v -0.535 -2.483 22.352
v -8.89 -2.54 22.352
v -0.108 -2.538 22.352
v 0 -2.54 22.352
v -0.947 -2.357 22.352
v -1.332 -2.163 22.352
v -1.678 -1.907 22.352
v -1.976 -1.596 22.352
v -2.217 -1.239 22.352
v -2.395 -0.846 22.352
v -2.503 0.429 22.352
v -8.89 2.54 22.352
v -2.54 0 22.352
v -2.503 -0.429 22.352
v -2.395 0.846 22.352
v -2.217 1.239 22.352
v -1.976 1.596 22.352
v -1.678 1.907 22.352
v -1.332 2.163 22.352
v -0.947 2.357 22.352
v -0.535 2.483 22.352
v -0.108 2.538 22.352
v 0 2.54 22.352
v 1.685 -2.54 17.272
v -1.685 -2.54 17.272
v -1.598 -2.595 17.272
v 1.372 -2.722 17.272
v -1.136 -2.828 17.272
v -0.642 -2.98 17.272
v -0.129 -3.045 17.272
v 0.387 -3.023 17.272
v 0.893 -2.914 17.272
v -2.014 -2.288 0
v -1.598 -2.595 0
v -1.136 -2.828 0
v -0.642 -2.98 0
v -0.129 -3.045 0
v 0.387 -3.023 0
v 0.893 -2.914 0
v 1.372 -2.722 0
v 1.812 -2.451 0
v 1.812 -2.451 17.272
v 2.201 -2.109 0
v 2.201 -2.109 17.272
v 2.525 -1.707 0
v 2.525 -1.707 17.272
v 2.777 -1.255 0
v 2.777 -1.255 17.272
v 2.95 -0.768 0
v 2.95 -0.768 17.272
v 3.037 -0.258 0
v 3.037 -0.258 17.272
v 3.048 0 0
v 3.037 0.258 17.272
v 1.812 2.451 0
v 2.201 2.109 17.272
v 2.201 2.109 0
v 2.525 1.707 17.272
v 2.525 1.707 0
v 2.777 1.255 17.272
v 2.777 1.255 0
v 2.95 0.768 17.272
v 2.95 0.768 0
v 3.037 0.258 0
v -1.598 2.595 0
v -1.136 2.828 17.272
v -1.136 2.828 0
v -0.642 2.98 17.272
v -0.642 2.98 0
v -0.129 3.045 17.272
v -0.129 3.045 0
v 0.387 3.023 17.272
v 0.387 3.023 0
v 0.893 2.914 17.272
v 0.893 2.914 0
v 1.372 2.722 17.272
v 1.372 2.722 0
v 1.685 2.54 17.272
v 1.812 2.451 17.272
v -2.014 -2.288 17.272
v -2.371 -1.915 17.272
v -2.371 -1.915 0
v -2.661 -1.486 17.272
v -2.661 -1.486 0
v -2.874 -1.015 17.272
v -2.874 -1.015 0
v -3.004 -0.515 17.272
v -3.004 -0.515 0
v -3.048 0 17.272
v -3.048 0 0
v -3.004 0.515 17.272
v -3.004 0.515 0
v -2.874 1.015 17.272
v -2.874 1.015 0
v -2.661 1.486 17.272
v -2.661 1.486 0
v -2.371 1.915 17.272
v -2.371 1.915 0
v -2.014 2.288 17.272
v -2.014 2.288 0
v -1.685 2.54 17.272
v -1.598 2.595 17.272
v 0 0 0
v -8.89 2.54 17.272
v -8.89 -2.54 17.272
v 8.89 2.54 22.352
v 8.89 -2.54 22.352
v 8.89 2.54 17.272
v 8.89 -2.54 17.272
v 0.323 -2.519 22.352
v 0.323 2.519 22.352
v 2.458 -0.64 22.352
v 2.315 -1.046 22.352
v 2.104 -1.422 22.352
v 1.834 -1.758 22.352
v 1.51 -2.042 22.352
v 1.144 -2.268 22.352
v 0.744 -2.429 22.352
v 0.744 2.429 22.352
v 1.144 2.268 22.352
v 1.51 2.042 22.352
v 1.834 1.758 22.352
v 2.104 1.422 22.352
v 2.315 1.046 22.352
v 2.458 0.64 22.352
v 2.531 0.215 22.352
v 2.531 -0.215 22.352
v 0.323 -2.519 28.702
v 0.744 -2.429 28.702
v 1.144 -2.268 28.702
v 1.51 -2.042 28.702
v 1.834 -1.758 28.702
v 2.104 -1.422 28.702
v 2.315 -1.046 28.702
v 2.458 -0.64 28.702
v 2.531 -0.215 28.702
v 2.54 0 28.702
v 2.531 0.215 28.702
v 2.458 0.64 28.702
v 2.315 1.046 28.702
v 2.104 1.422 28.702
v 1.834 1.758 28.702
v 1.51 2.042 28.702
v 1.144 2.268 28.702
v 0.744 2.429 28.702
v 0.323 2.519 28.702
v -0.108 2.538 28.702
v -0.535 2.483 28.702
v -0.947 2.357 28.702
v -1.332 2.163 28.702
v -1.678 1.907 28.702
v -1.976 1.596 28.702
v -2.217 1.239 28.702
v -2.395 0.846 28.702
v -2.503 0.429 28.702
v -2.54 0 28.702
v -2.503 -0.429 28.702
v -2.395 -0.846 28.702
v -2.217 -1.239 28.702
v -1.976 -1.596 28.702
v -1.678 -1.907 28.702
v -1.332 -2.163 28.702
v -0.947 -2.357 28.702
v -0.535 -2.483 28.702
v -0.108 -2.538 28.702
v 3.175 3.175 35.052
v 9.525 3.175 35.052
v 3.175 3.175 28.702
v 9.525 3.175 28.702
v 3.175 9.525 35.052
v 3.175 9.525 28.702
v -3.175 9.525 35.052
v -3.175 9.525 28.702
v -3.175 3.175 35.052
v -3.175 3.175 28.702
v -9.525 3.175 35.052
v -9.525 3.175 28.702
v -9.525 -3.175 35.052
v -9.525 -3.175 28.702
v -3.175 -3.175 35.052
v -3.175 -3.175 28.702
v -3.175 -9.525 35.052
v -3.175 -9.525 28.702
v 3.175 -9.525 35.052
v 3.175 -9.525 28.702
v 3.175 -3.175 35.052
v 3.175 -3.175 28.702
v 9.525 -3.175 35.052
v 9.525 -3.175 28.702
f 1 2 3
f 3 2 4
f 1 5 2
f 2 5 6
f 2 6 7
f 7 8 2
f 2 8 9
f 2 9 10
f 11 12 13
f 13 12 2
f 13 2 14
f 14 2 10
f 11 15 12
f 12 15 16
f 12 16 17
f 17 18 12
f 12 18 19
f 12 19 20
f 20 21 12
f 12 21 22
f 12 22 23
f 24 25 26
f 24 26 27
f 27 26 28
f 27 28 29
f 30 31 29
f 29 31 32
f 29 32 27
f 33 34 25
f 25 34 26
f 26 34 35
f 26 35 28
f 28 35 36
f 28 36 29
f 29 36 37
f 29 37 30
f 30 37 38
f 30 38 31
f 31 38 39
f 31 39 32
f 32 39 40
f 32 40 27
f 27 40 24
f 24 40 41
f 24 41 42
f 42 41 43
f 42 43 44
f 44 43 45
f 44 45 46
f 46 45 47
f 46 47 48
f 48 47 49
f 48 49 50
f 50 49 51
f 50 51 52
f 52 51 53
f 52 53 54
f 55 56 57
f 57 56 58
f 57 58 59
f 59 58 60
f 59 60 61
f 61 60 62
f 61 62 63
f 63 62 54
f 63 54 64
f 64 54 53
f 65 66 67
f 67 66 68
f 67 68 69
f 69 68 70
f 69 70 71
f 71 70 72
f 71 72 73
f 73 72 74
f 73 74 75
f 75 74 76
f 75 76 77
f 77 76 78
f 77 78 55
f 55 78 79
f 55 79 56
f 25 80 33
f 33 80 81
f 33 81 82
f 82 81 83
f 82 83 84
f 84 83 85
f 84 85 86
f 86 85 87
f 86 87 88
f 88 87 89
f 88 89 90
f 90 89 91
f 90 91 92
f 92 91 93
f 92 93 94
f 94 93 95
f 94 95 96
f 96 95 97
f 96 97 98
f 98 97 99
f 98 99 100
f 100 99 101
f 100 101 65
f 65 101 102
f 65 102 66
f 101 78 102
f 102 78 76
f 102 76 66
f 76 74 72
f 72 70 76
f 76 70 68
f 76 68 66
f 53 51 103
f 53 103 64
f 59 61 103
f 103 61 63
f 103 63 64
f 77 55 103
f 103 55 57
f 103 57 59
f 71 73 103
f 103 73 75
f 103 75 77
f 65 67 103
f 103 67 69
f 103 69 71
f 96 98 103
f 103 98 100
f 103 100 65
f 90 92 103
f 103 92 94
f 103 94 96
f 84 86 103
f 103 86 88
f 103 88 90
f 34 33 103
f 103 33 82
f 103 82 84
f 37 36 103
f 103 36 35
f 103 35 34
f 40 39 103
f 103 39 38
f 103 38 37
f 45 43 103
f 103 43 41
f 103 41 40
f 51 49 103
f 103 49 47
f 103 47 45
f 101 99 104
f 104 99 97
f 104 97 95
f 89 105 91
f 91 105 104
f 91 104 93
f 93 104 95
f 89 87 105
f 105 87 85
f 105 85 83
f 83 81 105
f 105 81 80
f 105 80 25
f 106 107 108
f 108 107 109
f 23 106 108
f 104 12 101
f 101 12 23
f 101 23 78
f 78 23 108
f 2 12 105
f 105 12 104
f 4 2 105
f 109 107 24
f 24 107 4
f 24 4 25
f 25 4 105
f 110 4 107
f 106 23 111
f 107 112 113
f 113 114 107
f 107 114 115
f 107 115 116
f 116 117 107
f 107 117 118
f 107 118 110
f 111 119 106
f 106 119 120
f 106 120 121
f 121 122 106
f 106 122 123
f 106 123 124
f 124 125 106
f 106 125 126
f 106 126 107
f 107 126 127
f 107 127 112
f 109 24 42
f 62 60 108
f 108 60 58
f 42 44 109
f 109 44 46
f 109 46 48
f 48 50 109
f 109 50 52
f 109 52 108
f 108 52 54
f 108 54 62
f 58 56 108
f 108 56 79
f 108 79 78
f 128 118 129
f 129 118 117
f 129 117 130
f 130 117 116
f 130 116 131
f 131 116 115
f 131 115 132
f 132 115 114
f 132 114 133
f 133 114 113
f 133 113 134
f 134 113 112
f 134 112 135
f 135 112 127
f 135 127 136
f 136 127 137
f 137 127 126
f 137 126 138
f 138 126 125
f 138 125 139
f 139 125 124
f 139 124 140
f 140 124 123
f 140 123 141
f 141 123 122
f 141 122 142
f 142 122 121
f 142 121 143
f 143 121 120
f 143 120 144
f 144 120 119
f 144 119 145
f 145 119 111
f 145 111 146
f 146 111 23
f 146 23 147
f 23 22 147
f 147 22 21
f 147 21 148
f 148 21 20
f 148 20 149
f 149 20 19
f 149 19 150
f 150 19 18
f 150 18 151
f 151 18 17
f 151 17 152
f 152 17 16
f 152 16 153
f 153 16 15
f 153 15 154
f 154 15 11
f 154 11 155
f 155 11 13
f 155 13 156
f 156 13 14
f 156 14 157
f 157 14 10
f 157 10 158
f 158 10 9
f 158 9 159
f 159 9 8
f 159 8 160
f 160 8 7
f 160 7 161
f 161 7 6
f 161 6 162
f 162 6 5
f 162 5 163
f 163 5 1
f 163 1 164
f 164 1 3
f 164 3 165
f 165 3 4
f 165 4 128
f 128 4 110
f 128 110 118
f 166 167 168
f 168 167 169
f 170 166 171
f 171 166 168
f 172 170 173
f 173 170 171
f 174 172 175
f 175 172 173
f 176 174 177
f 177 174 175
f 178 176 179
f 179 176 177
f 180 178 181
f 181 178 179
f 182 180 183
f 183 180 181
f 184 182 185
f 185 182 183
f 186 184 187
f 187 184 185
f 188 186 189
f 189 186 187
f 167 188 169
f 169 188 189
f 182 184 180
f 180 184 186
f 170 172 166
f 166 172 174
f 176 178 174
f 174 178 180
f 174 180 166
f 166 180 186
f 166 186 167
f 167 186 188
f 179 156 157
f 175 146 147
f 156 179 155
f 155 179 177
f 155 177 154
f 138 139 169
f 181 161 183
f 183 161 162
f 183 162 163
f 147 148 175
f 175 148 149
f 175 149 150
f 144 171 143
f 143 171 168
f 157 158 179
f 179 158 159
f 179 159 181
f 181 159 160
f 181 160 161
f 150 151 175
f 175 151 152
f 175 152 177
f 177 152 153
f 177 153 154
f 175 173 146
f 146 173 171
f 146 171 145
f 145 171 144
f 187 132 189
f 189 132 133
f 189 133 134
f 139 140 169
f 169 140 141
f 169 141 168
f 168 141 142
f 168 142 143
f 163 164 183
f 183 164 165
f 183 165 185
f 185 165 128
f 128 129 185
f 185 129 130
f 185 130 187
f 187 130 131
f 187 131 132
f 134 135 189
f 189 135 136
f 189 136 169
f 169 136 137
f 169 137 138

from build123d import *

# Parameters (mm, degrees)
SKETCH2_R           = 3.048
BOSS_EXTRUDE1_DEPTH = 17.272
SKETCH3_W           = 17.78
SKETCH3_H           = 5.08
BOSS_EXTRUDE2_DEPTH = 5.08
SKETCH4_R           = 2.54
BOSS_EXTRUDE3_DEPTH = 6.35
BOSS_EXTRUDE4_DEPTH = 6.35


with BuildPart() as part:
    # Sketch2 → Boss-Extrude1 (new body)
    with BuildSketch(Plane.XY):
        Circle(SKETCH2_R)
    extrude(amount=BOSS_EXTRUDE1_DEPTH)

    # Sketch3 → Boss-Extrude2 (add)
    with BuildSketch(Plane.XY.offset(17.272)):
        Rectangle(SKETCH3_W, SKETCH3_H)
    extrude(amount=BOSS_EXTRUDE2_DEPTH)

    # Sketch4 → Boss-Extrude3 (add)
    with BuildSketch(Plane.XY.offset(22.352)):
        with Locations(Location((0, 0, 0), (0, 0, 270))):
            Circle(SKETCH4_R)
    extrude(amount=BOSS_EXTRUDE3_DEPTH)

    # Sketch5 → Boss-Extrude4 (add)
    with BuildSketch(Plane.XY.offset(28.702)):
        Polygon((-3.175, 3.175), (-3.175, 9.525), (3.175, 9.525), (3.175, 3.175), (9.525, 3.175), (9.525, -3.175), (3.175, -3.175), (3.175, -9.525), (-3.175, -9.525), (-3.175, -3.175), (-9.525, -3.175), (-9.525, 3.175), align=None)
    extrude(amount=BOSS_EXTRUDE4_DEPTH)


solid = part.part
